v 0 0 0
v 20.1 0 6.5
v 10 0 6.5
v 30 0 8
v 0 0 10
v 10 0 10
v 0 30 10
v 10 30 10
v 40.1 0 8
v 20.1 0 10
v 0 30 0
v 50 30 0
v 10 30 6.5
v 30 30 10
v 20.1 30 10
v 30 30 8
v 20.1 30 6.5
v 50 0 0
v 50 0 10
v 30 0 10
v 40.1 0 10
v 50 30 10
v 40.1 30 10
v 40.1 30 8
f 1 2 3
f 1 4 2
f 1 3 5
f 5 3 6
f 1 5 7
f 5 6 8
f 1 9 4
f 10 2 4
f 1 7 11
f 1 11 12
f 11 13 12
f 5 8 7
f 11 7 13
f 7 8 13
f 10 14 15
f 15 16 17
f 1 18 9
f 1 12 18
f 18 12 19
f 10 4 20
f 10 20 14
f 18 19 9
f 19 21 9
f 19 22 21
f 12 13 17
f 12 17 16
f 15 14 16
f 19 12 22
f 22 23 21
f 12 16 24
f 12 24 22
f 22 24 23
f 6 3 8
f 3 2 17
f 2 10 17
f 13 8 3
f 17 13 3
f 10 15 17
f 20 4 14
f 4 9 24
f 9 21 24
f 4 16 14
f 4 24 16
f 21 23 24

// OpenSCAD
/* Jig to grind down 5x10mm LEDs
 * to 2x10mm
 */

difference(){
  cube([50,30,10]);
  {
    translate([10,0,6.5])
      cube([10.1,30,3.5]);
    translate([30,0,8])
      cube([10.1,30,2]);
  }
}
